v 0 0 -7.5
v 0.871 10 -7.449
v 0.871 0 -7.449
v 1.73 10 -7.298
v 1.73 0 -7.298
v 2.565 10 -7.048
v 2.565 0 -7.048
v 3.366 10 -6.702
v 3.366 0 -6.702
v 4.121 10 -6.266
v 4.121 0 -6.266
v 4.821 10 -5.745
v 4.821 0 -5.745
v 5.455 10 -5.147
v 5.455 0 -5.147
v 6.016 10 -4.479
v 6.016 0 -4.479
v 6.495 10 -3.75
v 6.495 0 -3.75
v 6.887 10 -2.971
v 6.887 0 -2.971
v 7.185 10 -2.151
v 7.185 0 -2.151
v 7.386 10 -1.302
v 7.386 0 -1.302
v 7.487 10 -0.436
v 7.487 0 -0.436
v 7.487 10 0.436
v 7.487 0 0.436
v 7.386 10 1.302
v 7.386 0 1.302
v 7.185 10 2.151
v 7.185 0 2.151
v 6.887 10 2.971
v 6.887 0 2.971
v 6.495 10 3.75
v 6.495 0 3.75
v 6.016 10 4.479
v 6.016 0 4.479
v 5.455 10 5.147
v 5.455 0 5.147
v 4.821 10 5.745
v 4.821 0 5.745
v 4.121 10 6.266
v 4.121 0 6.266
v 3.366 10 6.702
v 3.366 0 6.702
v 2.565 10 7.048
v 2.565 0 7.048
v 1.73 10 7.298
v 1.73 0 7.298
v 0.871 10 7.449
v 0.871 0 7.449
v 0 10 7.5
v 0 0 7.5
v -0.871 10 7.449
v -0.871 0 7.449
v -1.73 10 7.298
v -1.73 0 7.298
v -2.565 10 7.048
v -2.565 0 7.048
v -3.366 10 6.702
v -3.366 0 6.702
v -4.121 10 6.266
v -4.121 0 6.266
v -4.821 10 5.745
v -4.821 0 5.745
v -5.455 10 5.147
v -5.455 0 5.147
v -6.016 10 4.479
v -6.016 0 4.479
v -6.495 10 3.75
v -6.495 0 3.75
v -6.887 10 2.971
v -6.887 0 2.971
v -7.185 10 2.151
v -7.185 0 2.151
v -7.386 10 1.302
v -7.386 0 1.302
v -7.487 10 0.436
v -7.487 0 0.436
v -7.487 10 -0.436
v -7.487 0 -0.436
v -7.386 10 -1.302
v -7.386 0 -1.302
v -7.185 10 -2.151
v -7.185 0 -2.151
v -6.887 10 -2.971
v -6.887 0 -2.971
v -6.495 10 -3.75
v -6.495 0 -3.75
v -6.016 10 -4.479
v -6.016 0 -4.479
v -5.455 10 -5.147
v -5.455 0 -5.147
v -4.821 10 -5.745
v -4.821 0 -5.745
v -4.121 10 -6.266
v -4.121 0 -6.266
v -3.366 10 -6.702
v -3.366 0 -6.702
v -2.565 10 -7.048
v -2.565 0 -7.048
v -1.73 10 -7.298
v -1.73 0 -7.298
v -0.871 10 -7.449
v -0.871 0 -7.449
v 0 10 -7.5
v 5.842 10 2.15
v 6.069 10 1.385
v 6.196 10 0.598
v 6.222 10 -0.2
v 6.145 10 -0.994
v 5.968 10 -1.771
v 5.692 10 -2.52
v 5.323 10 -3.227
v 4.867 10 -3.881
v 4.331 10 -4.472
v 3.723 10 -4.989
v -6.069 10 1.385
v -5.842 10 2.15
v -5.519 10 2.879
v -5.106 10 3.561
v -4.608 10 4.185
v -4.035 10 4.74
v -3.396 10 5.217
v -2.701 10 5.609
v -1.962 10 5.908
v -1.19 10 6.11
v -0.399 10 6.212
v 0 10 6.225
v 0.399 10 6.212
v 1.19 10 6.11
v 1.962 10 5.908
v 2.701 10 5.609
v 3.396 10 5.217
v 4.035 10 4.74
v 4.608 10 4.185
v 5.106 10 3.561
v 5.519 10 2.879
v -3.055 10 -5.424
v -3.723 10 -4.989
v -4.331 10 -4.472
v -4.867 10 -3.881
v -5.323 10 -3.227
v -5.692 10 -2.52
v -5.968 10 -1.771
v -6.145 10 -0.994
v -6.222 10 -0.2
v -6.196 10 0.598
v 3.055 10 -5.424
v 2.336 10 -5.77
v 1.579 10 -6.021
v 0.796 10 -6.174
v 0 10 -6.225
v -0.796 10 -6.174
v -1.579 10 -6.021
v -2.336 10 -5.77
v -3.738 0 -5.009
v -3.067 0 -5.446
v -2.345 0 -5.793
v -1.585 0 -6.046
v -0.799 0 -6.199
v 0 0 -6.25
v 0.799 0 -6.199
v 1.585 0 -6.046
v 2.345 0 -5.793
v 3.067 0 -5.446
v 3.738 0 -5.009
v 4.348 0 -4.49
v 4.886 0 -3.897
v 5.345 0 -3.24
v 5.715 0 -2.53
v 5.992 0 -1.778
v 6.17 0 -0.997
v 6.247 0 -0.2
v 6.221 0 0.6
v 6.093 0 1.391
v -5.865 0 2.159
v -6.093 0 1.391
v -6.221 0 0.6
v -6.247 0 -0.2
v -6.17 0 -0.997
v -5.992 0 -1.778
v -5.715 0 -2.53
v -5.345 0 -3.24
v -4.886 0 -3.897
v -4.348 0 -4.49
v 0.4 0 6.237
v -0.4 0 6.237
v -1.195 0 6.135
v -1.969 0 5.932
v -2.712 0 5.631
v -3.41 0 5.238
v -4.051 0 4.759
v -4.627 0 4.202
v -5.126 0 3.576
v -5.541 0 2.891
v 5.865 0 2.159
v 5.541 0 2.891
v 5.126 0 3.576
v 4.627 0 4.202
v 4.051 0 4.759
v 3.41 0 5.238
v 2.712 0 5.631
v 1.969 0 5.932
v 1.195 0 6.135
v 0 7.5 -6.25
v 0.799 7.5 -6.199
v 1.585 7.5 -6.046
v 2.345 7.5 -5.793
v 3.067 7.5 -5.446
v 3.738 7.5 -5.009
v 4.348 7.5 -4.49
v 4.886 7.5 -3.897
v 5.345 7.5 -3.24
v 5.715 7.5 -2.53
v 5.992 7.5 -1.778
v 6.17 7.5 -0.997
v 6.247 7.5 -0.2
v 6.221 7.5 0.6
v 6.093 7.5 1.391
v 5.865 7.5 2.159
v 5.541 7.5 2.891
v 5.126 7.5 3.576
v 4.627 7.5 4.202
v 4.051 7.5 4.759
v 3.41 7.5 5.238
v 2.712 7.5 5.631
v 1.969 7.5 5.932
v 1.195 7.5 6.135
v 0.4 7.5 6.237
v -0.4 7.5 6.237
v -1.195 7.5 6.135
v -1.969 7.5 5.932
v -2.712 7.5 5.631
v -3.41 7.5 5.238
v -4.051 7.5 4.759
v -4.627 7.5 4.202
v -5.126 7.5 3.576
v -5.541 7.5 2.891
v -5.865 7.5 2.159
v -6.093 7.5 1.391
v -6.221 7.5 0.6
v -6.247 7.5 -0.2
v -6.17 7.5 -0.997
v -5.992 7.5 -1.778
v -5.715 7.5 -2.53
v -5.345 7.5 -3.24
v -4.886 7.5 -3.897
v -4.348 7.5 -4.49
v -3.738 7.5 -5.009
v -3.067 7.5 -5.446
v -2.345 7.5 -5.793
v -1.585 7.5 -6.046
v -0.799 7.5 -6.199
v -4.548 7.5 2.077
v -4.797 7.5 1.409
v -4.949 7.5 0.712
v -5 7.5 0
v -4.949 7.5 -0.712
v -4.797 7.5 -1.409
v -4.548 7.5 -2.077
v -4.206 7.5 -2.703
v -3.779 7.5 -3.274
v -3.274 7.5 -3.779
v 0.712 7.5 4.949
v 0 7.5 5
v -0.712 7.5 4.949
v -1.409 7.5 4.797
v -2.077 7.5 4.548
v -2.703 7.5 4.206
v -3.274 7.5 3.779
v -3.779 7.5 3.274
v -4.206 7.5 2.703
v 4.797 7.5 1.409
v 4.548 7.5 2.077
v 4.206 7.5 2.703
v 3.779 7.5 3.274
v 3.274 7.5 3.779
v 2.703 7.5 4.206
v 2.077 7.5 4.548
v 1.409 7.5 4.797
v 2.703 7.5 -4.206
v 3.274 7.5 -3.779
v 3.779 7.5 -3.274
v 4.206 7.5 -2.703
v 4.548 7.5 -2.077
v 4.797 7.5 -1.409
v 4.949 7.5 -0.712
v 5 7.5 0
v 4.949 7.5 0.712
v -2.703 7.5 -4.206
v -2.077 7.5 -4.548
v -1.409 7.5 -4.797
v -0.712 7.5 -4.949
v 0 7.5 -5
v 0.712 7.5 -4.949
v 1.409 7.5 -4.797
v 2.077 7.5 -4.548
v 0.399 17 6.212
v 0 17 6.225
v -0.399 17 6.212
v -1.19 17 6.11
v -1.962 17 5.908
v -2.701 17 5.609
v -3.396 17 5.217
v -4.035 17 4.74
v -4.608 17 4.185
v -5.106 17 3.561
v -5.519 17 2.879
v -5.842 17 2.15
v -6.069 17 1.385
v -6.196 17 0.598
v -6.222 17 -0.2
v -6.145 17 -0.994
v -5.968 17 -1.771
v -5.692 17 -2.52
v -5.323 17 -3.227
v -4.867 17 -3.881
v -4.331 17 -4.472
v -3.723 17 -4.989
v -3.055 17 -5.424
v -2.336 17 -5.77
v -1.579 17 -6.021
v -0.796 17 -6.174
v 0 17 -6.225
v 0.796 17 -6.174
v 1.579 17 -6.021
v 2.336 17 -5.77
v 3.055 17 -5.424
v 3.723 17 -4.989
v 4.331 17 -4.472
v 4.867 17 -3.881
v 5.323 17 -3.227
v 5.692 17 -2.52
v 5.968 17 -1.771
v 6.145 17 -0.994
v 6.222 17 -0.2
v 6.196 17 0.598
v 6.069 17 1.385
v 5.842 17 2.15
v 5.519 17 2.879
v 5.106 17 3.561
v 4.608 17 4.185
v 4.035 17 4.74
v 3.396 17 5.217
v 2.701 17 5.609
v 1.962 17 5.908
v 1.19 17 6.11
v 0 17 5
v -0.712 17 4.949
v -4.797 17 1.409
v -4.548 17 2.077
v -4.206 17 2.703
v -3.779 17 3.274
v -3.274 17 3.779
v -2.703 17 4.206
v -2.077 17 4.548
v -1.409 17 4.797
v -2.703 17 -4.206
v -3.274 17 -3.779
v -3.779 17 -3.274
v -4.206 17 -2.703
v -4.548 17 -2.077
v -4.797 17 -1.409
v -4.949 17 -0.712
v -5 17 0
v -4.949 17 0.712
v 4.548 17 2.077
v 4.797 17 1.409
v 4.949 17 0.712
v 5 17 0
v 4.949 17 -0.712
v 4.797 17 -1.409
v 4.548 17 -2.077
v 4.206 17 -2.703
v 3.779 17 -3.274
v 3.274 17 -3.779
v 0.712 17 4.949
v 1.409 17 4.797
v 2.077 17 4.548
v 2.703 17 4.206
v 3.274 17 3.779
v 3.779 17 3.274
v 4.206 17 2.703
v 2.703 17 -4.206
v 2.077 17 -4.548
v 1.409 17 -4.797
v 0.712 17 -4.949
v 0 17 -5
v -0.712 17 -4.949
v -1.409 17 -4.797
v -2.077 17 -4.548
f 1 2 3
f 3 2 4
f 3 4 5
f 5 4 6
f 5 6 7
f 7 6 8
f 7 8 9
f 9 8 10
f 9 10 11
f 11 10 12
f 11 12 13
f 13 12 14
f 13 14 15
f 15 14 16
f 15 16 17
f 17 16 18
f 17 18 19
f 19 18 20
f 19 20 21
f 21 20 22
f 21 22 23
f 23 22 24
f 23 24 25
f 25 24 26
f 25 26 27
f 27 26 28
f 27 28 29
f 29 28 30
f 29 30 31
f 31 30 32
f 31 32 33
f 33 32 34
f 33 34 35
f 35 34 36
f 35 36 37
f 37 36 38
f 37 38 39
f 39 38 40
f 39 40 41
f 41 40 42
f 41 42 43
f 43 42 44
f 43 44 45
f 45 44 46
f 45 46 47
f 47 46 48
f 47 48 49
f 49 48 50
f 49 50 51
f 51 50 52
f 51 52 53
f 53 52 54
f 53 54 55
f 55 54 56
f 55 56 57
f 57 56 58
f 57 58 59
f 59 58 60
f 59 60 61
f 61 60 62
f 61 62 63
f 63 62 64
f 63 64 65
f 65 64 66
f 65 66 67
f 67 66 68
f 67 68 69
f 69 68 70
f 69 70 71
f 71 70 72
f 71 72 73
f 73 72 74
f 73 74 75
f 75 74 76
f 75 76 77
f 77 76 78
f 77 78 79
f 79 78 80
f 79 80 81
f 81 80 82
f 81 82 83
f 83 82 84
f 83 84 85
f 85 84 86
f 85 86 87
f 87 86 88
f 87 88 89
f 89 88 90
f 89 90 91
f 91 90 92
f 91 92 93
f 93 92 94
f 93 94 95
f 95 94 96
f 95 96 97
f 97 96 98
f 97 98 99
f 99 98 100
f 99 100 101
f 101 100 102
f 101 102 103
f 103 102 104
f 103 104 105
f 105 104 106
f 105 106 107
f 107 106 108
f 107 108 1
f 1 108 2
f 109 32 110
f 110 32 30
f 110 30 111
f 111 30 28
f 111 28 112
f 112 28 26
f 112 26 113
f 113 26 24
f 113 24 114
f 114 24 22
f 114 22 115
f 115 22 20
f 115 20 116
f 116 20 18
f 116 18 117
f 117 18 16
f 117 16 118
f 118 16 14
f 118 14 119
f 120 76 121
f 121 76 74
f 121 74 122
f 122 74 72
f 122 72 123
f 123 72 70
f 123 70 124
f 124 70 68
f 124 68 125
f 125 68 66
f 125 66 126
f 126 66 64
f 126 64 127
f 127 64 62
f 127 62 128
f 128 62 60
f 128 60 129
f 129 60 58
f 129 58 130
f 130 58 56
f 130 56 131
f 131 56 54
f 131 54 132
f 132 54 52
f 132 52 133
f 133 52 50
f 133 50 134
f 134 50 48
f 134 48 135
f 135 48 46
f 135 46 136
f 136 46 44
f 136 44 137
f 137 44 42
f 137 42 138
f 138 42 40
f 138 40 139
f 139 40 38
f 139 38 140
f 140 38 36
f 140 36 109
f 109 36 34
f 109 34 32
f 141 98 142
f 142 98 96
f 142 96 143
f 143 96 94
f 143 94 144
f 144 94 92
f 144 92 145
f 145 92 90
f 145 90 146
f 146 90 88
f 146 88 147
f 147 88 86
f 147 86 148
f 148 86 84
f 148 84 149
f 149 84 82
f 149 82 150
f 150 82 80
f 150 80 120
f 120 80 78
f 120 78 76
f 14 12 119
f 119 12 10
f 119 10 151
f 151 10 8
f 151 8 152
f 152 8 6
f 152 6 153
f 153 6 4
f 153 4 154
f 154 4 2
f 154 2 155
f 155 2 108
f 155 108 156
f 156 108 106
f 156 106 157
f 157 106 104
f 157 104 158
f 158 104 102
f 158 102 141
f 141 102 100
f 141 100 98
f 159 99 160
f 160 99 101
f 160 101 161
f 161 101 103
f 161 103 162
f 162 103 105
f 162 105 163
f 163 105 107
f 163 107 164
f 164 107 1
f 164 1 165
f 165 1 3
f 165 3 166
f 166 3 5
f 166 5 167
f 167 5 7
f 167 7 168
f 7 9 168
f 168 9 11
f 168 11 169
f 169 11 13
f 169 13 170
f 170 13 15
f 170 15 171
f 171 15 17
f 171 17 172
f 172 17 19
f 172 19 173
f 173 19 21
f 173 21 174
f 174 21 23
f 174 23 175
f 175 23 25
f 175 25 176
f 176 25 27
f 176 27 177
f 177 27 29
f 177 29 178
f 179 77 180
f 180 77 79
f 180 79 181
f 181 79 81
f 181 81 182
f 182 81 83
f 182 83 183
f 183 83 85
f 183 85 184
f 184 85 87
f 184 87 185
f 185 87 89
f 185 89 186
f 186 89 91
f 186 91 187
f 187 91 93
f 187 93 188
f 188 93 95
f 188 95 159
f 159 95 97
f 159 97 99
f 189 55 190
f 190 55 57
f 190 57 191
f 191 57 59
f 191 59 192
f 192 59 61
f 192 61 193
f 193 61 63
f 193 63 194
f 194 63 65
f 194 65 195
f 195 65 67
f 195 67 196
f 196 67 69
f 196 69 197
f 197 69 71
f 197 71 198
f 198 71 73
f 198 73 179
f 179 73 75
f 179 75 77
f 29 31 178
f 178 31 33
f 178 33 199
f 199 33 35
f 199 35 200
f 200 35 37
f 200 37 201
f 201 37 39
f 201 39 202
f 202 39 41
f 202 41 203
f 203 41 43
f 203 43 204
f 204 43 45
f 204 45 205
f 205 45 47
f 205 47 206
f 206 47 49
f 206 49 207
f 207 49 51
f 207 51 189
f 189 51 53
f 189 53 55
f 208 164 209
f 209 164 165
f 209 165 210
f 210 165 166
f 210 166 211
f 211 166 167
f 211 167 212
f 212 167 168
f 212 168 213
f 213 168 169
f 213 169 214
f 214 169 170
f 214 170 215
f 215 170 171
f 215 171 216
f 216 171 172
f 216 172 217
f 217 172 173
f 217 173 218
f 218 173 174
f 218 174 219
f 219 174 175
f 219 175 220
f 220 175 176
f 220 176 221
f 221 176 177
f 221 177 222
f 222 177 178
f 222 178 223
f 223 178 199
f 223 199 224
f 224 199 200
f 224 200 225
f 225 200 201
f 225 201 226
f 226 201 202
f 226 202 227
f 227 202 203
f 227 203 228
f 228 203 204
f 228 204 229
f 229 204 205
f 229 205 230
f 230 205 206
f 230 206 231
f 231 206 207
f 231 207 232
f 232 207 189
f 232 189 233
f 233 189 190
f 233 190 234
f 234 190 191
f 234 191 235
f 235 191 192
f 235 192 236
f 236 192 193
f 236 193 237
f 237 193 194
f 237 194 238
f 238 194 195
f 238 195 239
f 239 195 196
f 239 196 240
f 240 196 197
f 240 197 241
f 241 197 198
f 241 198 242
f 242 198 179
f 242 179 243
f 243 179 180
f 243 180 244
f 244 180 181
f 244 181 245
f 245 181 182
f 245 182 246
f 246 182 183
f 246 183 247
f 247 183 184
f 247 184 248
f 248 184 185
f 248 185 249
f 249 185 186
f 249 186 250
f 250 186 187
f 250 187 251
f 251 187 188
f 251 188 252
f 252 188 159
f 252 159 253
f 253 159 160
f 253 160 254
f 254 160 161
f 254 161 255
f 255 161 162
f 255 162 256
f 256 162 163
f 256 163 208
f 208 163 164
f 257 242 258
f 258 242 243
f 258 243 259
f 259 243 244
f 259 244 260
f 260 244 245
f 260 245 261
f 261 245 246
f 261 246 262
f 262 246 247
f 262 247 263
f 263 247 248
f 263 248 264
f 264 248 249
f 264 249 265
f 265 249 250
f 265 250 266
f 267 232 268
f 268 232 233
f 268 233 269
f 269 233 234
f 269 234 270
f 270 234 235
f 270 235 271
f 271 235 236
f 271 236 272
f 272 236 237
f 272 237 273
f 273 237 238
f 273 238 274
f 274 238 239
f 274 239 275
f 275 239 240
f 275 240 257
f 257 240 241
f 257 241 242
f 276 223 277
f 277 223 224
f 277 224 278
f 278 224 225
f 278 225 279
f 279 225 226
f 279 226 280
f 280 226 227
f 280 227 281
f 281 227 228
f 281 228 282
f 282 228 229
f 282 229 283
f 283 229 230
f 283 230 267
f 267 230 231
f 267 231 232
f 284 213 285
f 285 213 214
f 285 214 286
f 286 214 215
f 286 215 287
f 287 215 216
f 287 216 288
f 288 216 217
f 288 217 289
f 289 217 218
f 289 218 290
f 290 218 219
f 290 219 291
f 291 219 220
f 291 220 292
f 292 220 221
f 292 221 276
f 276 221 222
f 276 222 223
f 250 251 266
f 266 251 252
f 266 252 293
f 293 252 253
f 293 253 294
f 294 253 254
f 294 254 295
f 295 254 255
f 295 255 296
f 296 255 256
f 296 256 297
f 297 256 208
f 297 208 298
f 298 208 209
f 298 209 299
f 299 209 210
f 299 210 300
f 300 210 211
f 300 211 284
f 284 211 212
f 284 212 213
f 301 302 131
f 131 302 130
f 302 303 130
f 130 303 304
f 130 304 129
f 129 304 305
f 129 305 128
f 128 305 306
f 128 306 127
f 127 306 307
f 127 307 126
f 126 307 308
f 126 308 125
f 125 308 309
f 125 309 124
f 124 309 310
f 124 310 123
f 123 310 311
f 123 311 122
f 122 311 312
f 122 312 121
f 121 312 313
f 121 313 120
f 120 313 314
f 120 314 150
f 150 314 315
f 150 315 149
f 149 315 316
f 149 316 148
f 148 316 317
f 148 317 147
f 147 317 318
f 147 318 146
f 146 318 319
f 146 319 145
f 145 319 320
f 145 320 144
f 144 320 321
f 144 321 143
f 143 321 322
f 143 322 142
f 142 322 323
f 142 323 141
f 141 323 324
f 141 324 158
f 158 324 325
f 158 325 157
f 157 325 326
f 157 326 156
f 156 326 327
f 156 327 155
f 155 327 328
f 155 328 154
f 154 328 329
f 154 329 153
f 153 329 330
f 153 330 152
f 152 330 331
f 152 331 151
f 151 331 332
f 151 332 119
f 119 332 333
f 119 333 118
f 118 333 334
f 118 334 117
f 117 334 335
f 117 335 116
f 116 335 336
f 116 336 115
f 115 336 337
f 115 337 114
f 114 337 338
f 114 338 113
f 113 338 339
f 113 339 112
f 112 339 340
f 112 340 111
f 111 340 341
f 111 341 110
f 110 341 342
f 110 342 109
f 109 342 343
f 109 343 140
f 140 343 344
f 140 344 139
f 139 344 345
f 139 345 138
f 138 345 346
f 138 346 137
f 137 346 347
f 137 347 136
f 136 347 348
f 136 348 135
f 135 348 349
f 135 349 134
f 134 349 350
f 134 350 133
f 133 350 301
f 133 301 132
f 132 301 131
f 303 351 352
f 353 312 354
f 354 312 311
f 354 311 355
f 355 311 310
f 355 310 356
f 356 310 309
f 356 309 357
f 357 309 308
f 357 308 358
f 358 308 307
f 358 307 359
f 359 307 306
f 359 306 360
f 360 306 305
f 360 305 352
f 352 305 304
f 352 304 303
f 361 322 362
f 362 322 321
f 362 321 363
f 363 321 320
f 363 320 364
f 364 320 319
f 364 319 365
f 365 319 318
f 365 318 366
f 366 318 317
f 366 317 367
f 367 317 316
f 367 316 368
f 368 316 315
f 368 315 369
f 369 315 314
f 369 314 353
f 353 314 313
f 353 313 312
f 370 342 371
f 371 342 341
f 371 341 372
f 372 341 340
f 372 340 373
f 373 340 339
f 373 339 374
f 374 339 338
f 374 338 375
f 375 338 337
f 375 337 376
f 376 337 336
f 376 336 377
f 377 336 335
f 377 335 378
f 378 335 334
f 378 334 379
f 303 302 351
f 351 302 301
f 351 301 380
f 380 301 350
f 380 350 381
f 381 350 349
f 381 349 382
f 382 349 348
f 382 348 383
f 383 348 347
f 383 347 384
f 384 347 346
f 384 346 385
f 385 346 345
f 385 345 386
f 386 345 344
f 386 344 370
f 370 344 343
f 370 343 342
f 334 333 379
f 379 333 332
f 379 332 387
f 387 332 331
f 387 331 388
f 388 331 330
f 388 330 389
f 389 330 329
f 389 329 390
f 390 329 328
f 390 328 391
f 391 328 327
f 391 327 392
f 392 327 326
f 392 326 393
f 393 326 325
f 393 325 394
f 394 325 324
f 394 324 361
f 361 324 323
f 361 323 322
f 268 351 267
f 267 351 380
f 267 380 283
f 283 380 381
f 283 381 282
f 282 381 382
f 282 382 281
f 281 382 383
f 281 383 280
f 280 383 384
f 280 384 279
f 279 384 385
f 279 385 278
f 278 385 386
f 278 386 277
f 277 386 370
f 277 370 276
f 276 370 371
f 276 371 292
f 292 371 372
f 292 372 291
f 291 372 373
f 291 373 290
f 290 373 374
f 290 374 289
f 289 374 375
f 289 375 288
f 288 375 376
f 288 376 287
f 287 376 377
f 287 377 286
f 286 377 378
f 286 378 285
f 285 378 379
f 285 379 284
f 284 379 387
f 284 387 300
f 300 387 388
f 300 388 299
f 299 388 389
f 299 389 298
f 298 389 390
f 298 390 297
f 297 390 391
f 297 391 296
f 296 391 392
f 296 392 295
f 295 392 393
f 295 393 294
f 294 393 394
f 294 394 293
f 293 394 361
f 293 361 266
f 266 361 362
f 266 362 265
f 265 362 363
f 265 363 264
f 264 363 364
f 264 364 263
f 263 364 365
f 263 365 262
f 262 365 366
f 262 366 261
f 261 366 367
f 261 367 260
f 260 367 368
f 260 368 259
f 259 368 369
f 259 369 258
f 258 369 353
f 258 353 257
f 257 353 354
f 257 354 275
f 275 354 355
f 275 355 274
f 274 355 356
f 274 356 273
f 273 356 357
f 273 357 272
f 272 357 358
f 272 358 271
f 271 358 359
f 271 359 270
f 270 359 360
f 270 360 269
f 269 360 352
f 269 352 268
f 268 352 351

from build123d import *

# Parameters (mm, degrees)
SKETCH1_R           = 7.5
BOSS_EXTRUDE1_DEPTH = 10
SKETCH2_R           = 6.25
CUT_EXTRUDE1_DEPTH  = 7.5
SKETCH3_R           = 6.225
BOSS_EXTRUDE2_DEPTH = 7
SKETCH4_R           = 5
CUT_EXTRUDE3_DEPTH  = 10.5


with BuildPart() as part:
    # Sketch1 → Boss-Extrude1 (new body)
    with BuildSketch(Plane(origin=(0, 0, 0), x_dir=(1, 0, 0), z_dir=(0, 1, 0))):
        with Locations(Location((0, 0, 0), (0, 0, 270))):
            Circle(SKETCH1_R)
    extrude(amount=BOSS_EXTRUDE1_DEPTH)

    # Sketch2 → Cut-Extrude1 (cut)
    with BuildSketch(Plane.XZ):
        with Locations(Location((0, 0, 0), (0, 0, 270))):
            Circle(SKETCH2_R)
    extrude(amount=-CUT_EXTRUDE1_DEPTH, mode=Mode.SUBTRACT)

    # Sketch3 → Boss-Extrude2 (add)
    with BuildSketch(Plane(origin=(0, 10, 0), x_dir=(1, 0, 0), z_dir=(0, 1, 0))):
        with Locations(Location((0, 0, 0), (0, 0, 270))):
            Circle(SKETCH3_R)
    extrude(amount=BOSS_EXTRUDE2_DEPTH)

    # Sketch4 → Cut-Extrude3 (cut)
    with BuildSketch(Plane(origin=(0, 17, 0), x_dir=(1, 0, 0), z_dir=(0, 1, 0))):
        with Locations(Location((0, 0, 0), (0, 0, 270))):
            Circle(SKETCH4_R)
    extrude(amount=-CUT_EXTRUDE3_DEPTH, mode=Mode.SUBTRACT)


solid = part.part
